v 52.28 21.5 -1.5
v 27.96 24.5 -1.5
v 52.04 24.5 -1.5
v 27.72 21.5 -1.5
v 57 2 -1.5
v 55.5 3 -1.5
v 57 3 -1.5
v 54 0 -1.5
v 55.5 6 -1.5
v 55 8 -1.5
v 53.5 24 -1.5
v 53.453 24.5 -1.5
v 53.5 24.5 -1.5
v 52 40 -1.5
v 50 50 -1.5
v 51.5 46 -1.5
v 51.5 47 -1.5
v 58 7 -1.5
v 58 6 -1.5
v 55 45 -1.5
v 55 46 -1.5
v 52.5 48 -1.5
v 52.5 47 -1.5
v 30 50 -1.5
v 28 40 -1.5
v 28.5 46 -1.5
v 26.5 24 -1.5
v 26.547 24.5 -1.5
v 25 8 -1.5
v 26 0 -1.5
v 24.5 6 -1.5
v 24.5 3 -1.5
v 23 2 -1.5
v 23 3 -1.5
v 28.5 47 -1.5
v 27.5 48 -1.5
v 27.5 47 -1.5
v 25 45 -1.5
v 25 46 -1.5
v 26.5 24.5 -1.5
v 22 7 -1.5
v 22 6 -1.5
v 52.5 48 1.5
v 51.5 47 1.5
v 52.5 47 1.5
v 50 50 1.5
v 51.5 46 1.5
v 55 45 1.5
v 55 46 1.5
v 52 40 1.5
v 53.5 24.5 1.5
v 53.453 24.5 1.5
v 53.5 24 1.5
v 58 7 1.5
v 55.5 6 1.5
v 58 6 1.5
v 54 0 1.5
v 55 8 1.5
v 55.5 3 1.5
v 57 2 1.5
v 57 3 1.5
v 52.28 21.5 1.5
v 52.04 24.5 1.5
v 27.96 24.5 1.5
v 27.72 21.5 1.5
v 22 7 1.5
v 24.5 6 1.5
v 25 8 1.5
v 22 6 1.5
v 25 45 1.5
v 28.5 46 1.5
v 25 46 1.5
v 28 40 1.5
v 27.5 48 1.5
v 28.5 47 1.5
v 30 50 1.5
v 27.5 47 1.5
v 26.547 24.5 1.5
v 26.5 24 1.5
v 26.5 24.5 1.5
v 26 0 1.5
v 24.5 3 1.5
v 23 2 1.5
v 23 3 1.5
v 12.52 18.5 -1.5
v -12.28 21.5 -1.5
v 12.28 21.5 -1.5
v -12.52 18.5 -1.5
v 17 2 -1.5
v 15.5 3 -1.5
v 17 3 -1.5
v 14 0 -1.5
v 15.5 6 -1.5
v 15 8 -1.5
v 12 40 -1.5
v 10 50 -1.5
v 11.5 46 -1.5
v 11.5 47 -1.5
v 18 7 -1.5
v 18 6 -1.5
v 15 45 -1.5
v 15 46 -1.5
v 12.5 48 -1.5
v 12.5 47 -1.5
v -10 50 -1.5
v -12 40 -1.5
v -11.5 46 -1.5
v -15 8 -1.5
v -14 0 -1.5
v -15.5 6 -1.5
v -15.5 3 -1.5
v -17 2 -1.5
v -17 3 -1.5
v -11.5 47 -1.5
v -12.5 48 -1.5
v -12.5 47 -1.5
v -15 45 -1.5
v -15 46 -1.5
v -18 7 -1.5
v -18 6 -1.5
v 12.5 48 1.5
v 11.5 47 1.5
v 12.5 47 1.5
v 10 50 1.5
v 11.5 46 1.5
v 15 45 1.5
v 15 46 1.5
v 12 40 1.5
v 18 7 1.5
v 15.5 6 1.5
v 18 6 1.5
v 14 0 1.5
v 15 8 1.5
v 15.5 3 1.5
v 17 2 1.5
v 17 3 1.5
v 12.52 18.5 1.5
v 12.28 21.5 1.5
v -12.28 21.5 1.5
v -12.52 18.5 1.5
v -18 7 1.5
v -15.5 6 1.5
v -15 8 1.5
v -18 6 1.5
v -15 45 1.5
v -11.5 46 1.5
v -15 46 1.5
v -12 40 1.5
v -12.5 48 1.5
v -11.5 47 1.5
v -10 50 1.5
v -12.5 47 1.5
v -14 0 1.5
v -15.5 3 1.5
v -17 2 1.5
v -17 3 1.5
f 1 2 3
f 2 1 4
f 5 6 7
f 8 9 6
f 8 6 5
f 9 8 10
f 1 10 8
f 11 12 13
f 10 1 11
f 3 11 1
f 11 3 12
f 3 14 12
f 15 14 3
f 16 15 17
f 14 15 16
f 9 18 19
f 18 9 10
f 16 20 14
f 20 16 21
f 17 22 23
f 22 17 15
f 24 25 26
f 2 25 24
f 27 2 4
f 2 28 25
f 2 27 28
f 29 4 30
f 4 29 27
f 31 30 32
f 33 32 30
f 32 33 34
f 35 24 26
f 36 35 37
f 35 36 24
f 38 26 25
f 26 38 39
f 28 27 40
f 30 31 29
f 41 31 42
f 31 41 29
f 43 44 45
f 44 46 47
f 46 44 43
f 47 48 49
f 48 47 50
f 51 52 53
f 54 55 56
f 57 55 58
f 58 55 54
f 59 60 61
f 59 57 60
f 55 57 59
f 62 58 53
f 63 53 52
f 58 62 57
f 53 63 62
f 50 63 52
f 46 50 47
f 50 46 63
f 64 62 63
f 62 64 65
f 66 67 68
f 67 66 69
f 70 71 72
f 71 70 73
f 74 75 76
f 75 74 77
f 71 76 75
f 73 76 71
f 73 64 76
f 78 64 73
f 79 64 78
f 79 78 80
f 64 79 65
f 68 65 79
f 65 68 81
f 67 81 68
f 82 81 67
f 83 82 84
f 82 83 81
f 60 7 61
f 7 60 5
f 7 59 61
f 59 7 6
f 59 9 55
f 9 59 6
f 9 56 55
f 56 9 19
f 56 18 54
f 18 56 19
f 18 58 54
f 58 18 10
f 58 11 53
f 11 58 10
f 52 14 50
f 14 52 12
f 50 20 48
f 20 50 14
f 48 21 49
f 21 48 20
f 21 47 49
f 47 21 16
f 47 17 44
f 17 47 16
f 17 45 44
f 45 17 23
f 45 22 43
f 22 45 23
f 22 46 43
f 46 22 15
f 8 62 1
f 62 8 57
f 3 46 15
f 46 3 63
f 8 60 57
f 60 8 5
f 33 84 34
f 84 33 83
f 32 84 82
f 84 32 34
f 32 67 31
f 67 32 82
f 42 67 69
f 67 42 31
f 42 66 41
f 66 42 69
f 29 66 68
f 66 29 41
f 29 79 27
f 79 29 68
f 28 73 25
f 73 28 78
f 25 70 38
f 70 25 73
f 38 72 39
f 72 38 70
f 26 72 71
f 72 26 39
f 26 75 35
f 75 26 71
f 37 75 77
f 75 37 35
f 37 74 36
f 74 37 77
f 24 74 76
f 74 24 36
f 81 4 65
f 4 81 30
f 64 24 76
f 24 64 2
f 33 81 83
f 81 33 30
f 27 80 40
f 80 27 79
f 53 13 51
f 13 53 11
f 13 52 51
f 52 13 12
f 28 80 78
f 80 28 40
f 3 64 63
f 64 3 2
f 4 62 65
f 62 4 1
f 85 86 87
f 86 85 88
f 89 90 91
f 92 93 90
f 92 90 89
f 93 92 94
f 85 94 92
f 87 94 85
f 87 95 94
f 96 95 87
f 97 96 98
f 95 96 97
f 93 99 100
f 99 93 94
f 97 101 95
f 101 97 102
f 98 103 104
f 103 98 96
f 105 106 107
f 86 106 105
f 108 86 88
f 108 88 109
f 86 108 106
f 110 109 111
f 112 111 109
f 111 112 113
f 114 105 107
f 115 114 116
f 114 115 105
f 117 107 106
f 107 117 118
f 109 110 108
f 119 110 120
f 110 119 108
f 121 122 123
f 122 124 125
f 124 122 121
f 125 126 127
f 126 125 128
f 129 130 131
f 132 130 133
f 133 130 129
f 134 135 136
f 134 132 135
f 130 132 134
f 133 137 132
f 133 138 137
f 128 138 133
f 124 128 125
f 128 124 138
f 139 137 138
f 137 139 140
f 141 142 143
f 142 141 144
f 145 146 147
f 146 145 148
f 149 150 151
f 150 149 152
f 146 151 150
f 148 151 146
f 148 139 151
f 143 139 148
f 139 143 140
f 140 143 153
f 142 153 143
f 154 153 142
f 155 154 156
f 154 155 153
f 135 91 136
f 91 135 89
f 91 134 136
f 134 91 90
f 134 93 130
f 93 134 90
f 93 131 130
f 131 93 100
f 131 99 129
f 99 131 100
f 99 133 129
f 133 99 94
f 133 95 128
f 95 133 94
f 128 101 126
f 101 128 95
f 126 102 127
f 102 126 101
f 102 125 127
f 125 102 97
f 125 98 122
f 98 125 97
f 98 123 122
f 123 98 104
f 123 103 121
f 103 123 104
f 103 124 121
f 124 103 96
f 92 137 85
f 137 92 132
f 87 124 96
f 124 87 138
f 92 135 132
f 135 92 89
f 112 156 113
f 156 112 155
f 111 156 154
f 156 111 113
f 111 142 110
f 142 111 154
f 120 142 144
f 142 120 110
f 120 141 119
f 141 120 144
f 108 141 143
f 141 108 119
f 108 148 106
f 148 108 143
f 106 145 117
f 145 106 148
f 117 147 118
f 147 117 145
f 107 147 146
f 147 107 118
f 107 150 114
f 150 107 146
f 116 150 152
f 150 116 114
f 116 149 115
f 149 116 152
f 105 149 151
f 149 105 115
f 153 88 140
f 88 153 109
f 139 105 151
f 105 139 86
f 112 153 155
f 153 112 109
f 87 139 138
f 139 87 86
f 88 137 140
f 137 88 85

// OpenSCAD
module leg() {
    linear_extrude(height=3, center=true)
    {
        polygon([
        [10,50],
        [14,0],
        [17,2],
        [17,3],
        [15.5,3],
        [15.5,6],
        [18,6],
        [18,7],
        [15,8],
        [12,40],
        [15,45],
        [15,46],
        [11.5,46],
        [11.5,47],
        [12.5,47],
        [12.5,48],
        ]);    
    }
}

leg();
mirror([-1,0,0])
    leg();
translate([0,20,0])
    cube([27,3,3], center=true);

translate([40,0,0])
{
    leg();
    mirror([-1,0,0])
        leg();
    
    translate([0,23,0])
        cube([27,3,3], center=true);
}
